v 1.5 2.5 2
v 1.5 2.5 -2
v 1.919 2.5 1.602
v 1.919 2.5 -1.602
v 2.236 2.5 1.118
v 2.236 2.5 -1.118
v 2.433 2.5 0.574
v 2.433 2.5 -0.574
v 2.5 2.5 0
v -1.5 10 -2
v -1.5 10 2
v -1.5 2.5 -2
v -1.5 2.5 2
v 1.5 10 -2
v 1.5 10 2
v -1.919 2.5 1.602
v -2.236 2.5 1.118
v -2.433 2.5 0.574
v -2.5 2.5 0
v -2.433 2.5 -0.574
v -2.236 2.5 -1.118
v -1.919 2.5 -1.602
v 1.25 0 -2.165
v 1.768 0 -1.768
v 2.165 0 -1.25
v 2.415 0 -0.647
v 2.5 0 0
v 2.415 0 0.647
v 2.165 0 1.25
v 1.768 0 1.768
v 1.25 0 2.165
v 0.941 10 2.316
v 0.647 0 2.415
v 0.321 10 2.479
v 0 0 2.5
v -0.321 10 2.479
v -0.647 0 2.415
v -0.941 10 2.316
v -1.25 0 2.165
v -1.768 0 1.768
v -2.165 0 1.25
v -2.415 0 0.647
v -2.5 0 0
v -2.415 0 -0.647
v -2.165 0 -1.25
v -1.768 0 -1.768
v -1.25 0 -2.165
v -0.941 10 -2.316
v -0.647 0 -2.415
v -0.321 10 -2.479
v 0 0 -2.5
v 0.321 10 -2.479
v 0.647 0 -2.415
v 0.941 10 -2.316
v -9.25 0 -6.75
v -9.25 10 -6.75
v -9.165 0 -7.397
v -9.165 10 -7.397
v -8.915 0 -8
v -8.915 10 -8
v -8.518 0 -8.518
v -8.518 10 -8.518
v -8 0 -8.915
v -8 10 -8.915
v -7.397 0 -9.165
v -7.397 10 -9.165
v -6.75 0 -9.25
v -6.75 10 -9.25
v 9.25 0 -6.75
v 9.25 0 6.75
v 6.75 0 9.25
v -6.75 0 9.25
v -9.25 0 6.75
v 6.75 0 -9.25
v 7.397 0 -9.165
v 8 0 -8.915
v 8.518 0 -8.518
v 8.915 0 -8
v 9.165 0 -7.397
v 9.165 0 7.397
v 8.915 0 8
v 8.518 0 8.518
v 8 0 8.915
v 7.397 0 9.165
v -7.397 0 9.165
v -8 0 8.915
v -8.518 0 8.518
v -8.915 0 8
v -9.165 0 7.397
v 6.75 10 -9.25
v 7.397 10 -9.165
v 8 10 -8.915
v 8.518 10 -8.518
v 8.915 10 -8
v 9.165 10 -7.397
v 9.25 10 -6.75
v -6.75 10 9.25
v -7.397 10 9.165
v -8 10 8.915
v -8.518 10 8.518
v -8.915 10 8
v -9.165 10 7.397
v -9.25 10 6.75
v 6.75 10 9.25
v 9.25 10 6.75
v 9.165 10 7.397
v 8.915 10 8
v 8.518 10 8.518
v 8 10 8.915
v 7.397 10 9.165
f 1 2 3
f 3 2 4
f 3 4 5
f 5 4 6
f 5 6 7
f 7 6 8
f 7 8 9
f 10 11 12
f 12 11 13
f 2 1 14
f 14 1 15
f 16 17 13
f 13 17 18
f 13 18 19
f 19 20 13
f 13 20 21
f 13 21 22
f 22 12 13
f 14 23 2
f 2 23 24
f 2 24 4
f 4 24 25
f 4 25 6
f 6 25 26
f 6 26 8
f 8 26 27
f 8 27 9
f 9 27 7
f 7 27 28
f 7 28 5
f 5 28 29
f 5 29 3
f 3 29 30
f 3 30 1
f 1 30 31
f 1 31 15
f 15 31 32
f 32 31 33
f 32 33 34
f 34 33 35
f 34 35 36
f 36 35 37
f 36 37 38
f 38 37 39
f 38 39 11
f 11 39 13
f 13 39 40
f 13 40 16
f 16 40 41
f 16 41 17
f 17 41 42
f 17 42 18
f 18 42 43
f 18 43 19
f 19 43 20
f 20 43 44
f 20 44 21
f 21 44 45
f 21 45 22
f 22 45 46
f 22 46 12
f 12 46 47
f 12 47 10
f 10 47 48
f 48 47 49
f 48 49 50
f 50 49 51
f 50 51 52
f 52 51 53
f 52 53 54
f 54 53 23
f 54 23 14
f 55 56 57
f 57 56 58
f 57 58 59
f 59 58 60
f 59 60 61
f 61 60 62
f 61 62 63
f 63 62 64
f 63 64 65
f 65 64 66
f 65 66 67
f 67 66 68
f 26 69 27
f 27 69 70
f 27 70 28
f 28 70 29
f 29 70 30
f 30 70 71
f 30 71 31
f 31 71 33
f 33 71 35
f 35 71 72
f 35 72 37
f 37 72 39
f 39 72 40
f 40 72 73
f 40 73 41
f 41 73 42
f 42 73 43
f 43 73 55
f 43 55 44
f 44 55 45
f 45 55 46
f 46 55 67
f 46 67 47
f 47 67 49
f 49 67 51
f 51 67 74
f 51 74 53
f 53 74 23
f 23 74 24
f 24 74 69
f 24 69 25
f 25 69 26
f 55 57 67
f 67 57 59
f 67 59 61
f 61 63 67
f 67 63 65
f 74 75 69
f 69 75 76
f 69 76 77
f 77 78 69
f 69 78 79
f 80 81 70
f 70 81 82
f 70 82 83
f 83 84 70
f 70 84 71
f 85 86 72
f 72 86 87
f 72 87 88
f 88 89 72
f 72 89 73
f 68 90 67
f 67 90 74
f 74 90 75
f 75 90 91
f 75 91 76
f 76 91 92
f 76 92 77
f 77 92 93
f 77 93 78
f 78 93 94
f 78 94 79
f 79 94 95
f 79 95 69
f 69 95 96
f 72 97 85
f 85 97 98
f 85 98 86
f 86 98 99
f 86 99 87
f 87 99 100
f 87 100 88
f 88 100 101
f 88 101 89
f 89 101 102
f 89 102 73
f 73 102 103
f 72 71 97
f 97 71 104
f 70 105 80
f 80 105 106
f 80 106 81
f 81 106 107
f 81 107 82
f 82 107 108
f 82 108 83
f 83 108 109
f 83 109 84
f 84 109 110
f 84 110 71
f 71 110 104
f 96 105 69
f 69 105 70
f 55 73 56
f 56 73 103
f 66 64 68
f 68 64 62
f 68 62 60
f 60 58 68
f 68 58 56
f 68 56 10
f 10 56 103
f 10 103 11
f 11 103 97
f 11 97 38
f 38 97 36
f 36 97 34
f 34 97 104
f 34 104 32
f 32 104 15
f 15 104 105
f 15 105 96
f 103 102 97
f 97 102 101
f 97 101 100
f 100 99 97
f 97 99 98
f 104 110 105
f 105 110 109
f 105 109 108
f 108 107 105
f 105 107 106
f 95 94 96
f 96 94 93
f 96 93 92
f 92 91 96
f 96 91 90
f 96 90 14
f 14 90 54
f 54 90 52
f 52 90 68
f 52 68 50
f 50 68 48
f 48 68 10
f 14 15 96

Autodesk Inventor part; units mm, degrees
ref_plane "YZ Plane" through (0, 0, 0) normal (1, 0, 0) x (0, 1, 0)
ref_plane "XZ Plane" through (0, 0, 0) normal (0, 1, 0) x (-1, 0, 0)
ref_plane "XY Plane" through (0, 0, 0) normal (0, 0, 1) x (1, 0, 0)
sketch "Sketch1" plane through (0, 0, 0) normal (0, 1, 0) x (-1, 0, 0)
  line L0 (9.25, -9.25) -> (-9.25, -9.25)
  line L1 (-9.25, -9.25) -> (-9.25, 9.25)
  line L2 (-9.25, 9.25) -> (9.25, 9.25)
  line L3 (9.25, 9.25) -> (9.25, -9.25)
  point P0 (0, 0)
  point P1 (0, 0)
  dimension "d0" = 18.5
extrude "Extrusion1" add sketch "Sketch1" along normal blind 10
fillet "Fillet1" radius 2.5 4 edges at (9.25, 5, 9.25) (-9.25, 5, 9.25) (9.25, 5, -9.25) (-9.25, 5, -9.25)
sketch "Sketch2" plane through (0, 10, 0) normal (0, 1, 0) x (1, 0, 0)
  circle A0 centre (0, 0) radius 2.5
  dimension "d4" = 5
extrude "Extrusion2" cut sketch "Sketch2" against normal through all
sketch "Sketch3" plane through (0, 10, 0) normal (0, 1, 0) x (1, 0, 0)
  line L0 (-1.5, -2.5) -> (1.5, -2.5)
  line L1 (1.5, -2.5) -> (1.5, 2.5)
  line L2 (1.5, 2.5) -> (-1.5, 2.5)
  line L3 (-1.5, 2.5) -> (-1.5, -2.5)
  line L4 (-1.5, -2.5) -> (1.5, 2.5) construction
  line L5 (1.5, -2.5) -> (-1.5, 2.5) construction
  line L6 (-3.8508, -4.7625) -> (3.8508, -4.7625)
  line L7 (3.8508, -4.7625) -> (3.8508, 4.7625)
  line L8 (3.8508, 4.7625) -> (-3.8508, 4.7625)
  line L9 (-3.8508, 4.7625) -> (-3.8508, -4.7625)
  line L10 (-3.8508, -4.7625) -> (3.8508, 4.7625) construction
  line L11 (3.8508, -4.7625) -> (-3.8508, 4.7625) construction
  point P0 (0, 0)
  point P1 (0, 0)
  dimension "d7" = 3
extrude "Extrusion3" add sketch "Sketch3" against normal blind 7.5
properties part number "servo connector"
